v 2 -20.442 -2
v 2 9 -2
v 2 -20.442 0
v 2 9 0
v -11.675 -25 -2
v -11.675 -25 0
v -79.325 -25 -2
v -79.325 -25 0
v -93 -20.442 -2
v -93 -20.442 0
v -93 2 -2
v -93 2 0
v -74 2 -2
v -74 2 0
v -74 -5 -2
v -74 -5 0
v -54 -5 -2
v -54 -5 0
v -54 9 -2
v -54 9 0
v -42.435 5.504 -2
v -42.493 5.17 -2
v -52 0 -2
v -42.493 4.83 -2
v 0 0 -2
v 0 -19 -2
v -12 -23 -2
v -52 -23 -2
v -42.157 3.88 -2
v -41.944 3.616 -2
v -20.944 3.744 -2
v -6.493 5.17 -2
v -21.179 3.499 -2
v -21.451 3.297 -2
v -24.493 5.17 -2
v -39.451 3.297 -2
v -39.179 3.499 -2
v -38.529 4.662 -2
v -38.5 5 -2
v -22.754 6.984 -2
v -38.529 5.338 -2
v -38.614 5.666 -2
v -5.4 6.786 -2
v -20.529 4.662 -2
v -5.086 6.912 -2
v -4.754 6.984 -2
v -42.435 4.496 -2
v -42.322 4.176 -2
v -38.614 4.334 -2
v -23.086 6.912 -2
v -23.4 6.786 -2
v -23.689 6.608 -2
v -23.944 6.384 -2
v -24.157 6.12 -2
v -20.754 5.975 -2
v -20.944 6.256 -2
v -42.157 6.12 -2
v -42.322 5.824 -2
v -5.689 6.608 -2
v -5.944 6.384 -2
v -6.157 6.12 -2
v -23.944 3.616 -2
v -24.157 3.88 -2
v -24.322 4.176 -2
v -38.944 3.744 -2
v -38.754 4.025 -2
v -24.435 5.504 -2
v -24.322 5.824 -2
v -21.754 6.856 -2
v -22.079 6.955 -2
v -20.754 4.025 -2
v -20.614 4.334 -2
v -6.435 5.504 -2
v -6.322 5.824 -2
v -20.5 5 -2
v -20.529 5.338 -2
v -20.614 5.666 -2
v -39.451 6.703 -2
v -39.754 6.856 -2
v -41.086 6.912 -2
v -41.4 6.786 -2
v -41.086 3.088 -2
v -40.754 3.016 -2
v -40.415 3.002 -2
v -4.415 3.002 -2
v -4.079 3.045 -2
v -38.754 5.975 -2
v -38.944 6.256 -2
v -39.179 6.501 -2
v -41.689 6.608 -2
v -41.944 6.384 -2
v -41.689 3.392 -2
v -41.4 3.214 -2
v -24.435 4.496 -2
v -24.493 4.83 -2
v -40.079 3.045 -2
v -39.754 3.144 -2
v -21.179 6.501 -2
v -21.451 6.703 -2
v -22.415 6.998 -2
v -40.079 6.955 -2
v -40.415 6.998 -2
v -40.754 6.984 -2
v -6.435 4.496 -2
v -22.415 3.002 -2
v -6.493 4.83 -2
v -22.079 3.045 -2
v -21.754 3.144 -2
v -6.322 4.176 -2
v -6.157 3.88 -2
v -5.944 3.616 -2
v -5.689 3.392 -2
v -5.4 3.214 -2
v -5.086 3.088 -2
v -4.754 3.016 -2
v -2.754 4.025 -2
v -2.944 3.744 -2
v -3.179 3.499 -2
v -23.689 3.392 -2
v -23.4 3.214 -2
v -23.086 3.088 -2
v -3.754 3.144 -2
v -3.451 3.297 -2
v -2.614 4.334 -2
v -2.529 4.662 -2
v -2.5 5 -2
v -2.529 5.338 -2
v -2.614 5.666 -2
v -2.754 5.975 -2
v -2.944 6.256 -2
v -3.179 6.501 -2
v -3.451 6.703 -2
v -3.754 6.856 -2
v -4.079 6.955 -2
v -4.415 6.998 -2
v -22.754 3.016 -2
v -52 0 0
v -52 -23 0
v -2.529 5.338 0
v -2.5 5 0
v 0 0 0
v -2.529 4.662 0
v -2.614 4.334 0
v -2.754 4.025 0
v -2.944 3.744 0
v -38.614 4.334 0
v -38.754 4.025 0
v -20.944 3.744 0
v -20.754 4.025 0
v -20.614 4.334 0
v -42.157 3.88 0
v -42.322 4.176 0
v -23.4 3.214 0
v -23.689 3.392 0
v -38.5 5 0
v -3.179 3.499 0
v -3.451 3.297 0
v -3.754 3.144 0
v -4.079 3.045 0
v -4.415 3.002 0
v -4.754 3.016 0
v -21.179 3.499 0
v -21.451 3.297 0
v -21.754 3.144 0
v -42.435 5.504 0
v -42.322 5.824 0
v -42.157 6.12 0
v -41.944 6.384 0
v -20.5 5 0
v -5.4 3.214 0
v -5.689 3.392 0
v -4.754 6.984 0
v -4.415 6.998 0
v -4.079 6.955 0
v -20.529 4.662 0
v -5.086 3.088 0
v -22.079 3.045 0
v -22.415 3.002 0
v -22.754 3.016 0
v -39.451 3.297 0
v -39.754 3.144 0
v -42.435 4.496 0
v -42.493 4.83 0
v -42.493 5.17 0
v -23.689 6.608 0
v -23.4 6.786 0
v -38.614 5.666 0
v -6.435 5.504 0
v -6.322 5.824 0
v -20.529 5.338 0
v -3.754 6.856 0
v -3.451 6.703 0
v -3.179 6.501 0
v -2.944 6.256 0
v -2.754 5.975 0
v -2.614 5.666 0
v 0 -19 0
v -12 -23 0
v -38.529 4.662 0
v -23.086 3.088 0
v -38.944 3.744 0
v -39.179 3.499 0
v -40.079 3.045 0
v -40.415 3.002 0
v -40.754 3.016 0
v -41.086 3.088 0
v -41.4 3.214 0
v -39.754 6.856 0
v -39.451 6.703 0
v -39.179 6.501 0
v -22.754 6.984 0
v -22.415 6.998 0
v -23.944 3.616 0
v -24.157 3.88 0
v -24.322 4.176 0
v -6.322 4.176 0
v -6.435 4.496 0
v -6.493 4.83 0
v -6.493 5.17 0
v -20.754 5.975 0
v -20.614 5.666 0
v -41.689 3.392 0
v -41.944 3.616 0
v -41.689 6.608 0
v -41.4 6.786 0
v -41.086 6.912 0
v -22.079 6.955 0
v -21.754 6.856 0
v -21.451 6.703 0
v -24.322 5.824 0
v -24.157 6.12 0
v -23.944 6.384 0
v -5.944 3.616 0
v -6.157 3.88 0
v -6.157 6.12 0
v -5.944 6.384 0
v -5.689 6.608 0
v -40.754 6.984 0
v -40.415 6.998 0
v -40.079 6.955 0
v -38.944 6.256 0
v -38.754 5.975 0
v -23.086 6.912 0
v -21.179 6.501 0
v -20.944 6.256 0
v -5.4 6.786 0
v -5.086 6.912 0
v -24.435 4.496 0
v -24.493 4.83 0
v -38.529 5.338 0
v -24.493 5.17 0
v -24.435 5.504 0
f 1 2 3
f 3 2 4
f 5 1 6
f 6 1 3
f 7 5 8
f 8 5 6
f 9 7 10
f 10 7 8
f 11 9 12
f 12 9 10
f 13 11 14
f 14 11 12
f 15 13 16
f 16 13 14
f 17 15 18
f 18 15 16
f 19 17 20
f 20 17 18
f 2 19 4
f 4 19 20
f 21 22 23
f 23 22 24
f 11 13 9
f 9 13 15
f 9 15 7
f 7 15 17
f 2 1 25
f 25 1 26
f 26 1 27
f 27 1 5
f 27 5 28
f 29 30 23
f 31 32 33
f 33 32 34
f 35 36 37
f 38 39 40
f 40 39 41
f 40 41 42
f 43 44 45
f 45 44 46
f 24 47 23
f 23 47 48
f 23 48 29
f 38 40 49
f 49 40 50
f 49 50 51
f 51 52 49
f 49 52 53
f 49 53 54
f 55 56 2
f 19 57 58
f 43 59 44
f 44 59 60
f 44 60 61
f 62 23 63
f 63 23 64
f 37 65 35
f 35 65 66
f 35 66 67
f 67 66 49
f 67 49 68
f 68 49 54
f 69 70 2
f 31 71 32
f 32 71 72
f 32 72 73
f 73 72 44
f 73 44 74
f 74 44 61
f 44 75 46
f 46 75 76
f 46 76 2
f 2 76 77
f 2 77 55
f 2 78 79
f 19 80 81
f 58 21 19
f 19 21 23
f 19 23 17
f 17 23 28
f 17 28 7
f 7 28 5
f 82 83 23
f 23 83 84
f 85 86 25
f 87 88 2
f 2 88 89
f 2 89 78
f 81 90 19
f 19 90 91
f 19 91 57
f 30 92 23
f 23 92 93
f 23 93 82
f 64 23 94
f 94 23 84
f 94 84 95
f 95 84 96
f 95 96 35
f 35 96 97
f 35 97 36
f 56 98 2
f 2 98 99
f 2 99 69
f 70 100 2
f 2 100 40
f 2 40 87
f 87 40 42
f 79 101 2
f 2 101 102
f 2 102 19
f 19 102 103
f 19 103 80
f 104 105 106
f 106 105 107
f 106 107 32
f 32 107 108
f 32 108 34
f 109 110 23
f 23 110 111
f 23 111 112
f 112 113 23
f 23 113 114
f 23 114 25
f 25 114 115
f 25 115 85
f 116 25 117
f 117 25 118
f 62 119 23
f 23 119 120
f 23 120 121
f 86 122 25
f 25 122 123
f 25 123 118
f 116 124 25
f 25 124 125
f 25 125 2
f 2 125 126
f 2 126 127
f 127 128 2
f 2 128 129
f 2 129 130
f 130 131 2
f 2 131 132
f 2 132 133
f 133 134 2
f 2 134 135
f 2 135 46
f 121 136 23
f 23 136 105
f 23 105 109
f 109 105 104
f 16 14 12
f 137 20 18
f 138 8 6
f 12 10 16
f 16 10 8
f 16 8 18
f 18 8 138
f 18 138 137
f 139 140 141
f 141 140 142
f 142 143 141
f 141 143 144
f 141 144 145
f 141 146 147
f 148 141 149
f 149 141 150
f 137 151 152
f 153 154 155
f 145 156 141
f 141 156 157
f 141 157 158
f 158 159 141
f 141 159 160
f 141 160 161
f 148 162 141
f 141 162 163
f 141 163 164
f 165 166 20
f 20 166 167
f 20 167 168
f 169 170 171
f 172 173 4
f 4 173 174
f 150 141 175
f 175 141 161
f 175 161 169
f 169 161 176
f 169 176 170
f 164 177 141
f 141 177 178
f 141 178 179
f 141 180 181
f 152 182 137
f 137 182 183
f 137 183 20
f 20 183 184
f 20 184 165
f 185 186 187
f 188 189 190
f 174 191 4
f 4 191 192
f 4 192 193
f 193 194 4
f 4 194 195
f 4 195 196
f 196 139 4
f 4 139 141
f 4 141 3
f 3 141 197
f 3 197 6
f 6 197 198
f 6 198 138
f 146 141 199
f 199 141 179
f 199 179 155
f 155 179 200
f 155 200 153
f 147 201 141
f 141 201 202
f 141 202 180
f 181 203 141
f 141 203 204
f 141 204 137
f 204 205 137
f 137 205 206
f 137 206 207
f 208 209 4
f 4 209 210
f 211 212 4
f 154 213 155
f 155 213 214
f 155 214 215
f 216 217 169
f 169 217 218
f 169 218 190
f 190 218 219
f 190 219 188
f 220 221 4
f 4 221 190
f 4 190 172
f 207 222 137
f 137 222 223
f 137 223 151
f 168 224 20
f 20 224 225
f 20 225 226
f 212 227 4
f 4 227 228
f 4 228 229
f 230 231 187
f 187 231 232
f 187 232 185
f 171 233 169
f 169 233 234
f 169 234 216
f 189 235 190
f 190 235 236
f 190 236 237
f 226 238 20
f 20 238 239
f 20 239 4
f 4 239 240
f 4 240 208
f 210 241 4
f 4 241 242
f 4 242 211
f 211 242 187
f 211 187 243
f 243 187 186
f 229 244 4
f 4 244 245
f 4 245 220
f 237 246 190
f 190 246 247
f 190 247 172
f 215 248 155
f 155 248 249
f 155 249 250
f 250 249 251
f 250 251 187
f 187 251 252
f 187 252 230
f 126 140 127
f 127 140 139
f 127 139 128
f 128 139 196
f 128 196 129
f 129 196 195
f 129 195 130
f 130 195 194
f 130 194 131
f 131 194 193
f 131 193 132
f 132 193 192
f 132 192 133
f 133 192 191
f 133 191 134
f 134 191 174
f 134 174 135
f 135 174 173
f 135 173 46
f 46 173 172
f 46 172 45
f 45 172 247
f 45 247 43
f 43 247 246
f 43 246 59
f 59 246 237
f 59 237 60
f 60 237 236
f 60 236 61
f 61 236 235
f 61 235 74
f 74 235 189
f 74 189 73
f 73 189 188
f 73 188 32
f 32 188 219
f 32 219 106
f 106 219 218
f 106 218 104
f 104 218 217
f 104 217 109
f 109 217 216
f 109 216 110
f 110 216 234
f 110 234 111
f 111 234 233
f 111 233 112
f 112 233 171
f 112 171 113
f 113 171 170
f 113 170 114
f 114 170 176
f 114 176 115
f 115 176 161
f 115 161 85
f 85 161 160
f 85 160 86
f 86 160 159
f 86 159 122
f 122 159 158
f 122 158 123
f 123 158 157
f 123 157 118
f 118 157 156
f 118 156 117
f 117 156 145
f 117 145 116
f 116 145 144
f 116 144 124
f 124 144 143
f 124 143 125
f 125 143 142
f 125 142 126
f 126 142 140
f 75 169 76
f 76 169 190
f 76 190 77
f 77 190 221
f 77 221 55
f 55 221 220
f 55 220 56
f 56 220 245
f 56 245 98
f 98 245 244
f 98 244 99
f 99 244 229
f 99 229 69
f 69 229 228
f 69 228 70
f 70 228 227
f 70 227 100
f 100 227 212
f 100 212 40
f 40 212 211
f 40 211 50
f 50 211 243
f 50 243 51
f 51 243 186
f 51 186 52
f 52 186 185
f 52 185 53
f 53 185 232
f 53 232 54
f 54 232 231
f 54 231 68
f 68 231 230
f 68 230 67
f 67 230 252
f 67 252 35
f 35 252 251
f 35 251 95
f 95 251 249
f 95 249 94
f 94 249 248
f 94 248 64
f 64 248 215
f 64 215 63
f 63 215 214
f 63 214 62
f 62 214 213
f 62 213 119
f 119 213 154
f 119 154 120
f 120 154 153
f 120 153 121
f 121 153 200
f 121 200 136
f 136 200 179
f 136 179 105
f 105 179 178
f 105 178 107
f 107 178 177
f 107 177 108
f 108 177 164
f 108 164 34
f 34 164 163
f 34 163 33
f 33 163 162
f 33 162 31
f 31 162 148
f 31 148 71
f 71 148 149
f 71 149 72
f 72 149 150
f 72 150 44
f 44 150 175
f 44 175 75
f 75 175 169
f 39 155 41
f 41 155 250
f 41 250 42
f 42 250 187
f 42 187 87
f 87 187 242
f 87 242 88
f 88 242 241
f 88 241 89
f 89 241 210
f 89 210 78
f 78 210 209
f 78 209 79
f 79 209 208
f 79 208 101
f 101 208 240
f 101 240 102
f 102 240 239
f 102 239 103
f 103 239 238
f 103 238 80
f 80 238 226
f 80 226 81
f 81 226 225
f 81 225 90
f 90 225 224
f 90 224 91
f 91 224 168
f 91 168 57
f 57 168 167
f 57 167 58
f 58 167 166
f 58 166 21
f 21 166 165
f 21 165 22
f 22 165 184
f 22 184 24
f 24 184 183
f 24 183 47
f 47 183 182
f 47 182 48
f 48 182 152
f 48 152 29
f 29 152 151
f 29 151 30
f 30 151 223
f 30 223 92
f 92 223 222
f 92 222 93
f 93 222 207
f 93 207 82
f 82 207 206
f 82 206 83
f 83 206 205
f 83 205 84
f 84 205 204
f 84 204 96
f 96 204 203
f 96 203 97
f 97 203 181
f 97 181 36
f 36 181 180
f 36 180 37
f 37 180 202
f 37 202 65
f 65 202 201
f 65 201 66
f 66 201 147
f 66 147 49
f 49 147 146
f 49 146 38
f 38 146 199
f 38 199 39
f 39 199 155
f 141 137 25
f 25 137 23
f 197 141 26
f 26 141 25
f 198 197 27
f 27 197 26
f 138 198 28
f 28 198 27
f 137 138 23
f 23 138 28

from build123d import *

# Parameters (mm, degrees)
BOSS_EXTRUDE1_DEPTH   = 2
F_4_0MM_DOWEL_HOLE1_D = 4
CUT_EXTRUDE1_REACH    = 98.322
BOSS_EXTRUDE2_DEPTH   = 2


with BuildPart() as part:
    # Sketch2 → Boss-Extrude1 (new body)
    with BuildSketch(Plane.XY):
        Polygon((2, 9), (-54, 9), (-54, -5), (-74, -5), (-74, 2), (-93, 2), (-93, -20.44151844), (-79.32455532, -25), (-11.67544468, -25), (2, -20.44151844), align=None)
    extrude(amount=-BOSS_EXTRUDE1_DEPTH)

    # Ø4.0mm Dowel Hole1 (through all)
    with Locations(Plane.XY):
        with Locations((-40.5, 5), (-22.5, 5), (-4.5, 5)):
            Hole(F_4_0MM_DOWEL_HOLE1_D / 2)

    # Sketch1 → Cut-Extrude1 (cut, up to next)
    with BuildSketch(Plane.XY, mode=Mode.PRIVATE) as cut_extrude1_sk1:
        Polygon((0, 0), (0, -19), (-12, -23), (-79, -23), (-91, -19), (-91, 0), (-76, 0), (-76, -7), (-52, -7), (-52, 0), align=None)
    cut_extrude1_tool1 = extrude(cut_extrude1_sk1.sketch, amount=-CUT_EXTRUDE1_REACH, mode=Mode.PRIVATE) & part.part
    add(cut_extrude1_tool1.solids().sort_by_distance((-43.844166, -11.956047, 0))[0], mode=Mode.SUBTRACT)

    # Sketch5 → Boss-Extrude2 (add)
    with BuildSketch(Plane.XY):
        Polygon((-52, -7), (-52, -23), (-79, -23), (-91, -19), (-91, 0), (-76, 0), (-76, -7), align=None)
    extrude(amount=-BOSS_EXTRUDE2_DEPTH)


solid = part.part
